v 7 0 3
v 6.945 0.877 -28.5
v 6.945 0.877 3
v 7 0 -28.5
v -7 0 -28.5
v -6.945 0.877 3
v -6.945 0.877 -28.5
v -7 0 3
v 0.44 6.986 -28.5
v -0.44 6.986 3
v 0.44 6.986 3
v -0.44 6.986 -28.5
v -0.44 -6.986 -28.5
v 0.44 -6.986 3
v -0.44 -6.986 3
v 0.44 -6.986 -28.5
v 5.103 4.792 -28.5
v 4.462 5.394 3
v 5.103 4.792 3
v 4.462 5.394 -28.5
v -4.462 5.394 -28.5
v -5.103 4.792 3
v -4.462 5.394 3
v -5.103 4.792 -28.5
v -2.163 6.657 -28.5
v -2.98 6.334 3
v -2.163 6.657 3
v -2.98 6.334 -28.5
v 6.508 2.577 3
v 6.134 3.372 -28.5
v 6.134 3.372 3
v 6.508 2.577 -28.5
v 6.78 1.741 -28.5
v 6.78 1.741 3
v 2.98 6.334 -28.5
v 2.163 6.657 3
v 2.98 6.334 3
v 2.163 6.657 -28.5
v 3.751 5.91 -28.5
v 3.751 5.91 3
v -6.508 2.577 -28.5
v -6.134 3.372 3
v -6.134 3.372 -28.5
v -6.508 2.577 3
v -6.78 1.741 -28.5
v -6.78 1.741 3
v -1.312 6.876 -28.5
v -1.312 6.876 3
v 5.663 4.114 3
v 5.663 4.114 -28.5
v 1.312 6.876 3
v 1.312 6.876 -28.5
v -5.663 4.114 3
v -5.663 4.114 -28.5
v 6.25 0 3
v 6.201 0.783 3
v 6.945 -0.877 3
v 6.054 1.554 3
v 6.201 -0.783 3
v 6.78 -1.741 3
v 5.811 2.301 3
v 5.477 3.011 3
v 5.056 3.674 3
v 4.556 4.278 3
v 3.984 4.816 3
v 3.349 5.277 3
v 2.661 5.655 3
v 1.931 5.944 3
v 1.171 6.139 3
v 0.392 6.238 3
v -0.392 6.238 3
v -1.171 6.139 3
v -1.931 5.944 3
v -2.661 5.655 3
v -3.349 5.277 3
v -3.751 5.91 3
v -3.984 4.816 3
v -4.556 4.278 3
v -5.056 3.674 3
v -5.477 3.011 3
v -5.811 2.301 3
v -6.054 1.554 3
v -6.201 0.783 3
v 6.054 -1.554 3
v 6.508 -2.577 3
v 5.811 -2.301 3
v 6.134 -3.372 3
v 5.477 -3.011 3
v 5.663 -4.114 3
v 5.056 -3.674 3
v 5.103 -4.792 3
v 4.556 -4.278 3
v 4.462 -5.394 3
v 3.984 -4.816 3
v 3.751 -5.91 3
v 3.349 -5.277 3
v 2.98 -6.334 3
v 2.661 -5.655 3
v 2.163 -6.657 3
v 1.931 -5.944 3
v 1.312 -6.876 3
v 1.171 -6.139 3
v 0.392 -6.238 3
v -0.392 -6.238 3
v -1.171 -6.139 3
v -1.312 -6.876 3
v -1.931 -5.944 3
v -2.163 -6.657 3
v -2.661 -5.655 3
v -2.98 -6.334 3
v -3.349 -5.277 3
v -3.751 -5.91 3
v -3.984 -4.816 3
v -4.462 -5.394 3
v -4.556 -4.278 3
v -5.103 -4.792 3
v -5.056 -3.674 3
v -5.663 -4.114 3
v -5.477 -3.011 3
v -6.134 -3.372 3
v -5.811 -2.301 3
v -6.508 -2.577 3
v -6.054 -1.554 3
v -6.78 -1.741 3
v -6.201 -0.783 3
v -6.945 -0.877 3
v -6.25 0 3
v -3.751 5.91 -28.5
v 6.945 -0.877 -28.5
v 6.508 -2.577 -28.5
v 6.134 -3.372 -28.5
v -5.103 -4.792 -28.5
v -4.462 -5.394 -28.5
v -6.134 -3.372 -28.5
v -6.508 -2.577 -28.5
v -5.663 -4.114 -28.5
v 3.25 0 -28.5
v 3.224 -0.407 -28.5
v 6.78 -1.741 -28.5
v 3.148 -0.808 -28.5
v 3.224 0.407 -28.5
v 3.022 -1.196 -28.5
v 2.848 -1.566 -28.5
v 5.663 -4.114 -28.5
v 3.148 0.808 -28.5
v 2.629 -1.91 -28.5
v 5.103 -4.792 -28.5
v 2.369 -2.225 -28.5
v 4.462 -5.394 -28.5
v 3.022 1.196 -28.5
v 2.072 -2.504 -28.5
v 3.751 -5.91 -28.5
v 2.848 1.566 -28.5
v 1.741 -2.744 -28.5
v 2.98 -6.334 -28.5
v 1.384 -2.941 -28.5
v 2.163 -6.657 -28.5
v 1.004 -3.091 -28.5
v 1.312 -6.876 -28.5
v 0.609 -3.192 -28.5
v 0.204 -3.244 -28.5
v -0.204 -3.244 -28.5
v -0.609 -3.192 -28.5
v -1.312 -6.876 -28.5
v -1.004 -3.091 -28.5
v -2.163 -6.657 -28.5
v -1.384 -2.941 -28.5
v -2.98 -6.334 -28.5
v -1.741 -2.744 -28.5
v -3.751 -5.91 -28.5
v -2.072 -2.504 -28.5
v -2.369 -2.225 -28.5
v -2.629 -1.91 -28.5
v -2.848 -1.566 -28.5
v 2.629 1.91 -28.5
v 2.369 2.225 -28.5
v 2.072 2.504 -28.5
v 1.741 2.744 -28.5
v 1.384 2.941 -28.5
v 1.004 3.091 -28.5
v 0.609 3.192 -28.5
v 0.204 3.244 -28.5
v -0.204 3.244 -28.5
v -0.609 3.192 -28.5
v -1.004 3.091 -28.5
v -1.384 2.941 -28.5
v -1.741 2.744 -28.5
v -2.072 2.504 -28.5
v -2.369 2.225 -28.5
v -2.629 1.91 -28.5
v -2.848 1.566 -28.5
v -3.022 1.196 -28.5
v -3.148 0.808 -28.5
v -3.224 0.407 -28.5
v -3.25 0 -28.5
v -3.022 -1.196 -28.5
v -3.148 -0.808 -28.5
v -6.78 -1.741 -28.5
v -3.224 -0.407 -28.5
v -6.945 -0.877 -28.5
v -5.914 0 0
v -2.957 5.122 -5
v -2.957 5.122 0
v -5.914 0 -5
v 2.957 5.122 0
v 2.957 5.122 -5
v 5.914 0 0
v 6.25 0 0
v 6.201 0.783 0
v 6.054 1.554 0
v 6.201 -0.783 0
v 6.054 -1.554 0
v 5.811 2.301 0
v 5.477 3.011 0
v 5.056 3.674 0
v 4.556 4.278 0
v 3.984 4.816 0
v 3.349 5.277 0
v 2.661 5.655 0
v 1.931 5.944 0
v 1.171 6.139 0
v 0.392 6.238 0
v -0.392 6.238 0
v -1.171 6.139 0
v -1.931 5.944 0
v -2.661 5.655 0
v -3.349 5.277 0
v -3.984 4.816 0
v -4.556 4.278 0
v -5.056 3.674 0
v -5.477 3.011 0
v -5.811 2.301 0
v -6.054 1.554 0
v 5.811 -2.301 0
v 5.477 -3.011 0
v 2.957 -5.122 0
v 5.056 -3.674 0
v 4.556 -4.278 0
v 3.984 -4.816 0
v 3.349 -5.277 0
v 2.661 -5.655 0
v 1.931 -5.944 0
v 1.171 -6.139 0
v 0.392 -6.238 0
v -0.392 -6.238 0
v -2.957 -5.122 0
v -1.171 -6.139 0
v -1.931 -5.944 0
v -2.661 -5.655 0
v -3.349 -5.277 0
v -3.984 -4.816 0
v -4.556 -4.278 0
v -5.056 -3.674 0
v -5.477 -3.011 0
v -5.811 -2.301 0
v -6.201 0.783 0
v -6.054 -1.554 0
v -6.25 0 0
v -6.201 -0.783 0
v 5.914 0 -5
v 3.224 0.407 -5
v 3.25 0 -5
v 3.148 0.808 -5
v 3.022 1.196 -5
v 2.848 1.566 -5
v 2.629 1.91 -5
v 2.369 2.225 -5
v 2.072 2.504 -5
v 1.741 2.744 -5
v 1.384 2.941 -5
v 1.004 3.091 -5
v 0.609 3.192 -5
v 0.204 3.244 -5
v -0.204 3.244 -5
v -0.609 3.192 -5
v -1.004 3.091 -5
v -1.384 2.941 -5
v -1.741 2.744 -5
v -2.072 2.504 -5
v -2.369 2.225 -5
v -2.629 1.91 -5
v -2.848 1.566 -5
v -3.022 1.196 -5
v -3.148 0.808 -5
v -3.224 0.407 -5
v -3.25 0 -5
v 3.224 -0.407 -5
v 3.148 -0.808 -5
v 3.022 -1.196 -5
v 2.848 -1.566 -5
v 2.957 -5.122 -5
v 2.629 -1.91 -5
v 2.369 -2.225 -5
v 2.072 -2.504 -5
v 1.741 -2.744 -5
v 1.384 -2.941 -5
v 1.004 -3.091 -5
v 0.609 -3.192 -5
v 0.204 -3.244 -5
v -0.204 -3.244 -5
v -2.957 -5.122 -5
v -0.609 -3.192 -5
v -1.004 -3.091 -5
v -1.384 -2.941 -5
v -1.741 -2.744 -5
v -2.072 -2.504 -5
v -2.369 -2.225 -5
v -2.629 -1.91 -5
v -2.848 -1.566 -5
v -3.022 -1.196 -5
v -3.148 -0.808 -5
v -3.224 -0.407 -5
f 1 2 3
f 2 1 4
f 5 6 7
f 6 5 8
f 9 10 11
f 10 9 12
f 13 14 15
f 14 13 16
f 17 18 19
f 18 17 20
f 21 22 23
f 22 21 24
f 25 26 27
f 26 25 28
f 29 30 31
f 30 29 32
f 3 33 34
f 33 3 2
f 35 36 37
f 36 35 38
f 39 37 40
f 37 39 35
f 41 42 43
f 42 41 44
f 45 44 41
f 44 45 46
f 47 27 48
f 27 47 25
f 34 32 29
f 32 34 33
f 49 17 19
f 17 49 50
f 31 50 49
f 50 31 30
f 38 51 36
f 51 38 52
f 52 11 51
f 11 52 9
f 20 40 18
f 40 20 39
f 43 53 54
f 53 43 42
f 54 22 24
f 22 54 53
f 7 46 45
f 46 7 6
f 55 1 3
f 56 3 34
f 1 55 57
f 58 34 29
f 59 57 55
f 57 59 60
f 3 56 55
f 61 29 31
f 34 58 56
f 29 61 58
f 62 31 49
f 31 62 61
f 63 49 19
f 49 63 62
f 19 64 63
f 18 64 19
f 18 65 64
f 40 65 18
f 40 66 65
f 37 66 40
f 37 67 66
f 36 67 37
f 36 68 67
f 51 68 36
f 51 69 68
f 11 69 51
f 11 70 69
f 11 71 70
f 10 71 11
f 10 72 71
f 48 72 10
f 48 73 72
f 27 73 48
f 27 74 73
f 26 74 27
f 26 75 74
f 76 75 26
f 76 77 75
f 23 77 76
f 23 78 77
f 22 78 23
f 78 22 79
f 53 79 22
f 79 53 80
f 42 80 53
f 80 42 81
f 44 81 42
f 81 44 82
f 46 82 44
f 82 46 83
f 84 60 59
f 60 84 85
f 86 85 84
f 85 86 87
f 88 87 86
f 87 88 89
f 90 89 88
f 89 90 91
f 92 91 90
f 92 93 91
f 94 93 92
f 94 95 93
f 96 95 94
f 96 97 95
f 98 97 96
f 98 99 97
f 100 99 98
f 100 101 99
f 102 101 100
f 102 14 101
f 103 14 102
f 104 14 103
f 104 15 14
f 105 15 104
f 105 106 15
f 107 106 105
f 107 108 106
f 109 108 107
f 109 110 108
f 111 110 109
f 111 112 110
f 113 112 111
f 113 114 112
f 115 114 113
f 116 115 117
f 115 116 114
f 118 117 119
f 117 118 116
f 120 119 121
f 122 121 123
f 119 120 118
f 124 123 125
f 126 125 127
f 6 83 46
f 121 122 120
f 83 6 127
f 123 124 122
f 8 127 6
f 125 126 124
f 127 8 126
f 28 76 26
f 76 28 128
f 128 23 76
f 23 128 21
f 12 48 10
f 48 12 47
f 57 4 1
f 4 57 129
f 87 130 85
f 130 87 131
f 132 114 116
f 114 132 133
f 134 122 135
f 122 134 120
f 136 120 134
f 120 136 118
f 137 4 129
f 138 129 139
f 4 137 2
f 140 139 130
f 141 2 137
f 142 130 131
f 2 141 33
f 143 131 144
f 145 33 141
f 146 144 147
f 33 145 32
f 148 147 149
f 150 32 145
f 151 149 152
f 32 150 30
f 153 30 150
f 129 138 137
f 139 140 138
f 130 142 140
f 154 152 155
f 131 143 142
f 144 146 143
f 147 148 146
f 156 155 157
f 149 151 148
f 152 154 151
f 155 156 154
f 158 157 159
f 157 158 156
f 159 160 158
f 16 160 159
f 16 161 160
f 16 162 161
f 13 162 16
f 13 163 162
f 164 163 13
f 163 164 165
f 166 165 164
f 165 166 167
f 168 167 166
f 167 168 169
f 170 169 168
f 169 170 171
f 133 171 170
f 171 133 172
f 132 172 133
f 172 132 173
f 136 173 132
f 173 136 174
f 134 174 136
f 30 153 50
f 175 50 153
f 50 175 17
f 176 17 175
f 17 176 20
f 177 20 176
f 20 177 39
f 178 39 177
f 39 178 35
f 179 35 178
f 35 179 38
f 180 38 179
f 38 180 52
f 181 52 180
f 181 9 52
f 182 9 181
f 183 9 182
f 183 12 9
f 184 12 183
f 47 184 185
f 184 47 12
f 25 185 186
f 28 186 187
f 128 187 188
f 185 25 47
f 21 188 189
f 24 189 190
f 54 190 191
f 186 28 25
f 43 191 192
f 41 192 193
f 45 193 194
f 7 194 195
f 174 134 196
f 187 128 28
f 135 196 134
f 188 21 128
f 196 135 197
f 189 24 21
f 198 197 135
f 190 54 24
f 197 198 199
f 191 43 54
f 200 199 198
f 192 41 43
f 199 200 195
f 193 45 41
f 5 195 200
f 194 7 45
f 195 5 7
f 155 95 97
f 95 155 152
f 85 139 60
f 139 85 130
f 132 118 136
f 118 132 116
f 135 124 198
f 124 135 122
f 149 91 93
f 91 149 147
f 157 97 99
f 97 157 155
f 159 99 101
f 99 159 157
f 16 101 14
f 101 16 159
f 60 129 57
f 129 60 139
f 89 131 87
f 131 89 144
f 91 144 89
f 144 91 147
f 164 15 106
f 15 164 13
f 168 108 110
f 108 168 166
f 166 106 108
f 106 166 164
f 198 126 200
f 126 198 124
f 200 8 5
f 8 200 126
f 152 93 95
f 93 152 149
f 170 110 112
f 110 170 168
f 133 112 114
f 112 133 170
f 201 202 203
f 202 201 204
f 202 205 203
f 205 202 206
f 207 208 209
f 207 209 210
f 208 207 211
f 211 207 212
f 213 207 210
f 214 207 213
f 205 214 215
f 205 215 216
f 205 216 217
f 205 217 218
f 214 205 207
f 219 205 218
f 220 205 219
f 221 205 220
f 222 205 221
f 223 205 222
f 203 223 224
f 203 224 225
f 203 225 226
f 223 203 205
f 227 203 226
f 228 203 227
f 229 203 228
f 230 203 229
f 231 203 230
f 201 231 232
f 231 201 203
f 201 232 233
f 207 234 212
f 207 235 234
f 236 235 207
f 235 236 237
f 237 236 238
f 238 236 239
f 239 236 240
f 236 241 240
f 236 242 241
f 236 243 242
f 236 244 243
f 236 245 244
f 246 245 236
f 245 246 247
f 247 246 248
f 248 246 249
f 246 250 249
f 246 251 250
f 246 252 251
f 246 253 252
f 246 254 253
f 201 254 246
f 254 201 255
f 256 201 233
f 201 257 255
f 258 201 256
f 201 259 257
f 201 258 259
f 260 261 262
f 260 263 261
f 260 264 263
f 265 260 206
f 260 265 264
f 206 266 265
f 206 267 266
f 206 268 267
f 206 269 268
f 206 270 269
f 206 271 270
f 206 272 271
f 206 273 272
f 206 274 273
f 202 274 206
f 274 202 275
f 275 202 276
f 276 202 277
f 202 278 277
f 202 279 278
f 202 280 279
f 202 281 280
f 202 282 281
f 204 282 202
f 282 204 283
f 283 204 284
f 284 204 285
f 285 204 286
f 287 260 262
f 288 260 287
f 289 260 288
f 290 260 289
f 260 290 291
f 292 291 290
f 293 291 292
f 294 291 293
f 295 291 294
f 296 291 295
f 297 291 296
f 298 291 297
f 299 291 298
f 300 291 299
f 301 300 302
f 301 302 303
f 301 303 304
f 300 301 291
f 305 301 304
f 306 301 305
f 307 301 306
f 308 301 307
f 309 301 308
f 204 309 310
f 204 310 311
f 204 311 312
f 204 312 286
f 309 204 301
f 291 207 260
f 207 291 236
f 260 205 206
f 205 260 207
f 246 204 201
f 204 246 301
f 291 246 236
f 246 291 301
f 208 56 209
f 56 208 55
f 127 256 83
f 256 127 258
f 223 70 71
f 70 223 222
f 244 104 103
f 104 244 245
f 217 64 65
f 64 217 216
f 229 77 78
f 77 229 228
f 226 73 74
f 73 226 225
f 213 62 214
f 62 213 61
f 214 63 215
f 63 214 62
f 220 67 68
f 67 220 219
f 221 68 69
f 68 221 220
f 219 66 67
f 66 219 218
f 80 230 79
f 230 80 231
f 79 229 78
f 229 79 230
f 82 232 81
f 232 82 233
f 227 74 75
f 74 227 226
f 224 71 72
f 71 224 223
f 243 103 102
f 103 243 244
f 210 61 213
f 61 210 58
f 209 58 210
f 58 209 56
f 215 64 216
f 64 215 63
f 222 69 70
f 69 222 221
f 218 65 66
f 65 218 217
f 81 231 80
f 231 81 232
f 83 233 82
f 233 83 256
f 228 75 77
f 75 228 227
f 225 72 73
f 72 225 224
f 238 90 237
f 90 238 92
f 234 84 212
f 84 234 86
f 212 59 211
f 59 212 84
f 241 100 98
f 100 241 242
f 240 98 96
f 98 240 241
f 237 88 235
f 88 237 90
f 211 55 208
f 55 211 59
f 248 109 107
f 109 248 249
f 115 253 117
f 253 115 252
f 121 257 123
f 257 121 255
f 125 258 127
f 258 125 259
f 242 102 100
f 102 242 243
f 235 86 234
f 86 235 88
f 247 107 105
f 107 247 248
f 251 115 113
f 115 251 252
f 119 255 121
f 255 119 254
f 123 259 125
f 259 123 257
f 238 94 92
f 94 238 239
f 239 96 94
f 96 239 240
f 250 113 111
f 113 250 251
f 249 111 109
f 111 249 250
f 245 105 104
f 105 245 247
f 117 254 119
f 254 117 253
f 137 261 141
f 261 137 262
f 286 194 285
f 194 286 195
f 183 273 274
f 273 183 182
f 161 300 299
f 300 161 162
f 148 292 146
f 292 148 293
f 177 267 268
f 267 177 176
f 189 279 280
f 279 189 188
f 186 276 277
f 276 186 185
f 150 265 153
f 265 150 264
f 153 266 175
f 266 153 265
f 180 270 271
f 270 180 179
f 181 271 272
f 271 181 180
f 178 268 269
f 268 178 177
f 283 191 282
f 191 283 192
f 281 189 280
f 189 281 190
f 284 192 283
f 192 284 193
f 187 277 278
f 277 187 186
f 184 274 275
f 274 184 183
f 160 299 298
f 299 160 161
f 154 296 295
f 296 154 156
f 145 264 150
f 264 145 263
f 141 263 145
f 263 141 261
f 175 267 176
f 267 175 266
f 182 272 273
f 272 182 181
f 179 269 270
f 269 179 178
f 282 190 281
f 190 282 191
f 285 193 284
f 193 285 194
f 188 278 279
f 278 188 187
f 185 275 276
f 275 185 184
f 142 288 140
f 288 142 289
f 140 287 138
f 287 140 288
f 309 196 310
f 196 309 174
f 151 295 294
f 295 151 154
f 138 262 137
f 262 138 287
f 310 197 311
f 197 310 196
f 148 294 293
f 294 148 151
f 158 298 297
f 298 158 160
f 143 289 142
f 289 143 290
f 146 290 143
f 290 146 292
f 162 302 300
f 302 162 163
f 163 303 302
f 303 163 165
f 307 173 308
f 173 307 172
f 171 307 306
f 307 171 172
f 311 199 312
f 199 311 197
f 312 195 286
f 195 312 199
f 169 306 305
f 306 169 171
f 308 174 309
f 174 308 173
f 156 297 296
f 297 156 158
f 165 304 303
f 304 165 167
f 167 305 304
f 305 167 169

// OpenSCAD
$fn = 50;

difference() {
	union() {
		translate(v = [0, 0, -28.5]) {
			cylinder(h = 31.5, r = 7.0);
		}
		#translate(v = [0, 0, -30.0]) {
			cylinder(h = 30, r = 2.875);
		}
	}
	union() {
		translate(v = [0, 0, 0]) {
			rotate(a = [0, 0, 0]) {
				difference() {
					union() {
						translate(v = [0, 0, -5]) {
							linear_extrude(height = 5) {
								polygon(points = [[5.914249999999999, 0.0], [2.957125, 5.1218907443321156], [-2.9571249999999982, 5.1218907443321156], [-5.914249999999999, 7.242867331857232e-16], [-2.9571250000000022, -5.121890744332115], [2.9571249999999956, -5.121890744332118]]);
							}
						}
					}
					union();
				}
			}
		}
		#cylinder(h = 3, r = 6.25);
		#translate(v = [0, 0, -100.0]) {
			cylinder(h = 200, r = 3.25);
		}
	}
}
